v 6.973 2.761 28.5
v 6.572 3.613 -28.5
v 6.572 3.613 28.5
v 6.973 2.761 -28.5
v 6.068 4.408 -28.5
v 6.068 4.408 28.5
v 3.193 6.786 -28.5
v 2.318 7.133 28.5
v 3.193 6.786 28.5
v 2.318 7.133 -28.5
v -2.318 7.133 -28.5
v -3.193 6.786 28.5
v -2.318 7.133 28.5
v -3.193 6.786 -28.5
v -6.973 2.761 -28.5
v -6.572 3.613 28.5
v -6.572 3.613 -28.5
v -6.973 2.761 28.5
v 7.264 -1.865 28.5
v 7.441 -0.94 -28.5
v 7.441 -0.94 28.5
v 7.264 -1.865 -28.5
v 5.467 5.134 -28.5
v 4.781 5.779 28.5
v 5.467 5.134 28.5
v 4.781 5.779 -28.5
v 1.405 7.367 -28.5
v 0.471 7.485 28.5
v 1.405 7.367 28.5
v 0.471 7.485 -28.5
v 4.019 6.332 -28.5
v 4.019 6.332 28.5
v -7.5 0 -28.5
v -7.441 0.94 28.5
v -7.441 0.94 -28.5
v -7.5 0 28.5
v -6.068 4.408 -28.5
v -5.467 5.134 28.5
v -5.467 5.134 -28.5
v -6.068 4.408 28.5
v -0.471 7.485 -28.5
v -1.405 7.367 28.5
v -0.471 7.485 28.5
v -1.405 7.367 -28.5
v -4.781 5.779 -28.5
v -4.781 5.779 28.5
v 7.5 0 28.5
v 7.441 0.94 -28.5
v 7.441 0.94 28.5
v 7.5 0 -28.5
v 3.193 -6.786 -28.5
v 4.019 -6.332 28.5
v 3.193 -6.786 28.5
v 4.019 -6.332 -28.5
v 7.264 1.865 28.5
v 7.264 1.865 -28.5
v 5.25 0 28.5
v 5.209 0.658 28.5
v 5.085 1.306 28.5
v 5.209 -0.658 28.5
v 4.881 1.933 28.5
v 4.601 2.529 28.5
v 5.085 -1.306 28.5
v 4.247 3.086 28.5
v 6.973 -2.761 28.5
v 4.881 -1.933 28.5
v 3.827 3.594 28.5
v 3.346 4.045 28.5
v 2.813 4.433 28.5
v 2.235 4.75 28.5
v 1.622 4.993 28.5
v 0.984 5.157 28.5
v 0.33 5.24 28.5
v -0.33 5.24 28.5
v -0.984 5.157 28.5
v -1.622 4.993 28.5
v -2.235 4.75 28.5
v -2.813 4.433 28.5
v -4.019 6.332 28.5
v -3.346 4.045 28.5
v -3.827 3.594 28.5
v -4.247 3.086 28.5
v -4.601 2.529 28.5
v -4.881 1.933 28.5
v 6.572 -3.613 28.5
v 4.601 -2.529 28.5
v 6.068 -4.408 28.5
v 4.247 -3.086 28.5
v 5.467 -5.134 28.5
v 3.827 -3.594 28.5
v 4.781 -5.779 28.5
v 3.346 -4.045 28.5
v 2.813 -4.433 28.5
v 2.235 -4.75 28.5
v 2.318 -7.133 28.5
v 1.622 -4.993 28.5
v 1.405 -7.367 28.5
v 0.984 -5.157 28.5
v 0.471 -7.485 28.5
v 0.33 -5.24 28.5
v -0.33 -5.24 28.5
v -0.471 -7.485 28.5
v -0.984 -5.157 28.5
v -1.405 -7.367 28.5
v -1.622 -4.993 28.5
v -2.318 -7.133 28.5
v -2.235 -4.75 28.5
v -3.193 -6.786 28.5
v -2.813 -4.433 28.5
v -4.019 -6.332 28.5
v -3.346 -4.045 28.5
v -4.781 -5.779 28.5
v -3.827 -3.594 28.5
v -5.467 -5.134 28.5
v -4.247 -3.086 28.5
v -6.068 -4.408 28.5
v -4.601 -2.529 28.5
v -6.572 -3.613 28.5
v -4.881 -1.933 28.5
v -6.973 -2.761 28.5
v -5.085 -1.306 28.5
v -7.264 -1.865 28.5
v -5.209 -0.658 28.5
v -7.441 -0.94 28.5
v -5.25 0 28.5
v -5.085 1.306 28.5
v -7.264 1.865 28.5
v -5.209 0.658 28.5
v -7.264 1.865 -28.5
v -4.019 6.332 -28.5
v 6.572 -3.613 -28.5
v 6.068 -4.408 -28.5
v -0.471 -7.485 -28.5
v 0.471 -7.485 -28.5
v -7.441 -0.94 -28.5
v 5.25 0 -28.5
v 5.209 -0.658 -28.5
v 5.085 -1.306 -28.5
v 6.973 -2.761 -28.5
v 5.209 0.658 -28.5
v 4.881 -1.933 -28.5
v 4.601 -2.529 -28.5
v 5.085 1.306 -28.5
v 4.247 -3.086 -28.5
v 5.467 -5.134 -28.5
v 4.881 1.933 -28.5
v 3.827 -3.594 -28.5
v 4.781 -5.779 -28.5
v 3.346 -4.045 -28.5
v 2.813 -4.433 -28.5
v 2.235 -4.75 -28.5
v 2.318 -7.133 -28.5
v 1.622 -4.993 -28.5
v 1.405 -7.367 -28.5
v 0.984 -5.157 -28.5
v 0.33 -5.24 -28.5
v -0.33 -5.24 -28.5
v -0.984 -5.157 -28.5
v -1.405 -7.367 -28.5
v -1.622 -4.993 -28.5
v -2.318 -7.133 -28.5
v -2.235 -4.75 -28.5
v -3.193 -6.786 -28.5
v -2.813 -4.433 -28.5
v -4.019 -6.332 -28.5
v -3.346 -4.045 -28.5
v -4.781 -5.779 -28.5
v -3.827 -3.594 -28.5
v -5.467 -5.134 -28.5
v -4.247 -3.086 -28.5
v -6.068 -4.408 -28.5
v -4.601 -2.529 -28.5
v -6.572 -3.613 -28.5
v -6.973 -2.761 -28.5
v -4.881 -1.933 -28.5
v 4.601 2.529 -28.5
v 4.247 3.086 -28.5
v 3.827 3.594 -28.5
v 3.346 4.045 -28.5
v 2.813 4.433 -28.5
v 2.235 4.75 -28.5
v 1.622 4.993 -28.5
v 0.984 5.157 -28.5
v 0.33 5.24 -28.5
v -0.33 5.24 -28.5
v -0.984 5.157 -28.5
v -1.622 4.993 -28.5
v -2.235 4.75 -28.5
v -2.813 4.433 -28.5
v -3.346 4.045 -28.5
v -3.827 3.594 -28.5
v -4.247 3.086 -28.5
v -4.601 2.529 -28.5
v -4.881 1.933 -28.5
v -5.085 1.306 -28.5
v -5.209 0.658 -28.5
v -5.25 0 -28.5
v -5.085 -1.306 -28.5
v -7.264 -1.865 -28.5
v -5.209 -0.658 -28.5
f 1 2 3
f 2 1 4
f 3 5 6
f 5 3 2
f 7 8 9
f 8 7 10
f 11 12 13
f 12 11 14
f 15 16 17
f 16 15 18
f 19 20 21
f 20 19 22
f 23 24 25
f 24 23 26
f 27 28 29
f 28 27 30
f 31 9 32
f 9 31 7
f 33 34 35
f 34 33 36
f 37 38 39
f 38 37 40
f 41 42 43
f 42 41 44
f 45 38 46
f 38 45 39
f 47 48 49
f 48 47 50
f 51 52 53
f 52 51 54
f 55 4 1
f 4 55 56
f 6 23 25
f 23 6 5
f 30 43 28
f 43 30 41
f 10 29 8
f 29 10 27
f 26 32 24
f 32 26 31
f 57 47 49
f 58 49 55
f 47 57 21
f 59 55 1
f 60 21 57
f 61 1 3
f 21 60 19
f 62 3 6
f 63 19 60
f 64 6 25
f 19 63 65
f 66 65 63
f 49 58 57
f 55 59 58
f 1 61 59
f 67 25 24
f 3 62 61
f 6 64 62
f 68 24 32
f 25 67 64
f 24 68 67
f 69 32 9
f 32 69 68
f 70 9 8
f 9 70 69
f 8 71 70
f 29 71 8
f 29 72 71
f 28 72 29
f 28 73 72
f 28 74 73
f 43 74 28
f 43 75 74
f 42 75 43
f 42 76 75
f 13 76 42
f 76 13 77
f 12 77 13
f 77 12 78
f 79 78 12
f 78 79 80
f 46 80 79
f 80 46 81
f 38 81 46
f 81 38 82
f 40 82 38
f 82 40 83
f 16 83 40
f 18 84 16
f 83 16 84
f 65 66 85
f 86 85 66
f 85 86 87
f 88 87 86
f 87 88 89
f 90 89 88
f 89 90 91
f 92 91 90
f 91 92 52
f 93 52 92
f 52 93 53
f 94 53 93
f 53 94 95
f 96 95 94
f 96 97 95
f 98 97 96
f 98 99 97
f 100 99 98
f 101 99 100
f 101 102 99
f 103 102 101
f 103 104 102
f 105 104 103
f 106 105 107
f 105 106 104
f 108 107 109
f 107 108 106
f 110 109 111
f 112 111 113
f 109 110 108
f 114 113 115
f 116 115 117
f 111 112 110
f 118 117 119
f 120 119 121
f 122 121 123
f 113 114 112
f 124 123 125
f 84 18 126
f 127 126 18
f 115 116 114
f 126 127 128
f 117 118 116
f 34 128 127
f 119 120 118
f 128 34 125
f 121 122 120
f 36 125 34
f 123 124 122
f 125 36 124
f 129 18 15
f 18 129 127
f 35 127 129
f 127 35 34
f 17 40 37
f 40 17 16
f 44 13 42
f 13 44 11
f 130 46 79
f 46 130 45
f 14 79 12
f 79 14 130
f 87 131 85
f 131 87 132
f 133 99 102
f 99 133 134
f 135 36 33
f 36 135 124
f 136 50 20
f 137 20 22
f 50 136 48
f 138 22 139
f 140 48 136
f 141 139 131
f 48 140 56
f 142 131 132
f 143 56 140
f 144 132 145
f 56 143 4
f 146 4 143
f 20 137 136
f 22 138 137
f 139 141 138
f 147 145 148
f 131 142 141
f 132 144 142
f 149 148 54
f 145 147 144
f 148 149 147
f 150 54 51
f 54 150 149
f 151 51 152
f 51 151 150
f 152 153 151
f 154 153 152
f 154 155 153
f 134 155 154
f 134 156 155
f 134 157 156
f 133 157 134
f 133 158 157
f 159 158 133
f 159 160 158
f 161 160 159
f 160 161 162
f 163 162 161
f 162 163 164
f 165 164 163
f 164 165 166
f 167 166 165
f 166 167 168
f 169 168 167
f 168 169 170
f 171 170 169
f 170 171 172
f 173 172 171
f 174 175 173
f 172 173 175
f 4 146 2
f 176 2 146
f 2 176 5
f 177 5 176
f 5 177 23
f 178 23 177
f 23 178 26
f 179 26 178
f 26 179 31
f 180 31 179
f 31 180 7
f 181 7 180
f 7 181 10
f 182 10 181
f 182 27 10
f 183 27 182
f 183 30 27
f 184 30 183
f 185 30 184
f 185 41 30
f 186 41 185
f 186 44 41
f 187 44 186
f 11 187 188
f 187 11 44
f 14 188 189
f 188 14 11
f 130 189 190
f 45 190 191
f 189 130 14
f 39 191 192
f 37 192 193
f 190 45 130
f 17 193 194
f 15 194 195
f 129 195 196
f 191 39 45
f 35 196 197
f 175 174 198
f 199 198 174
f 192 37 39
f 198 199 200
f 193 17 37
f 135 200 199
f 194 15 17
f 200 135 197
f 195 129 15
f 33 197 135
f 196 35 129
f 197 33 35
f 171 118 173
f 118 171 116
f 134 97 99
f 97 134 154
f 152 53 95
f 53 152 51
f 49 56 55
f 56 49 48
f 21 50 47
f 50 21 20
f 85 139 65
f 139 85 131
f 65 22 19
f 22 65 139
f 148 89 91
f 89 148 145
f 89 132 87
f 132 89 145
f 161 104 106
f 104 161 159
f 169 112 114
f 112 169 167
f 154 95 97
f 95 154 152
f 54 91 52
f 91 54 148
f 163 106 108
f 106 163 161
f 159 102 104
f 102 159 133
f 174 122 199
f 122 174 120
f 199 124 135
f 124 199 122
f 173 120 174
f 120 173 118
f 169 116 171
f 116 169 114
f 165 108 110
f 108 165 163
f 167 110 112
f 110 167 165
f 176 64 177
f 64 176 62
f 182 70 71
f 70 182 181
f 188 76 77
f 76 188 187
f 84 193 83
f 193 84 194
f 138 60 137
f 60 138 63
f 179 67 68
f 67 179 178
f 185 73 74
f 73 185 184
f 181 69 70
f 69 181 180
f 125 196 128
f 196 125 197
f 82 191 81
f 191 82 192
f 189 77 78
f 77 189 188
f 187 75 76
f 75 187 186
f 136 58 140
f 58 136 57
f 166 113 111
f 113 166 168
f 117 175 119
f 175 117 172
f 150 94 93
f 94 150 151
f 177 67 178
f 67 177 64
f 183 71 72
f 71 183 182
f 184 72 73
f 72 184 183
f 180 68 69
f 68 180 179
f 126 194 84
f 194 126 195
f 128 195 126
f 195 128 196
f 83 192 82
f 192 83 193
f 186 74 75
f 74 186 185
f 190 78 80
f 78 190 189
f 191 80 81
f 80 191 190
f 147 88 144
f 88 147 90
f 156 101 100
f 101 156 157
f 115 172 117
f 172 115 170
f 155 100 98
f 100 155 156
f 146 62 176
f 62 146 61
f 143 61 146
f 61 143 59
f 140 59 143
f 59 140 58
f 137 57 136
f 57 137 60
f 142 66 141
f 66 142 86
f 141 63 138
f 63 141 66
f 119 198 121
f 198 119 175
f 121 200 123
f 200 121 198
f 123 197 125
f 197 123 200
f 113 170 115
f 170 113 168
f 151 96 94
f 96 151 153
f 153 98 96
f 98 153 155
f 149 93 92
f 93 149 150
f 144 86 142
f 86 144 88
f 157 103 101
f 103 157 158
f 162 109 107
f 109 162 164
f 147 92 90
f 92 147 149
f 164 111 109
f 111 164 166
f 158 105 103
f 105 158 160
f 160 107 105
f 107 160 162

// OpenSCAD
$fn = 50;


difference() {
	union() {
		translate(v = [0, 0, -28.5000000000]) {
			cylinder(h = 57, r = 7.5000000000);
		}
	}
	union() {
		translate(v = [0, 0, -100.0000000000]) {
			cylinder(h = 200, r = 5.2500000000);
		}
	}
}
